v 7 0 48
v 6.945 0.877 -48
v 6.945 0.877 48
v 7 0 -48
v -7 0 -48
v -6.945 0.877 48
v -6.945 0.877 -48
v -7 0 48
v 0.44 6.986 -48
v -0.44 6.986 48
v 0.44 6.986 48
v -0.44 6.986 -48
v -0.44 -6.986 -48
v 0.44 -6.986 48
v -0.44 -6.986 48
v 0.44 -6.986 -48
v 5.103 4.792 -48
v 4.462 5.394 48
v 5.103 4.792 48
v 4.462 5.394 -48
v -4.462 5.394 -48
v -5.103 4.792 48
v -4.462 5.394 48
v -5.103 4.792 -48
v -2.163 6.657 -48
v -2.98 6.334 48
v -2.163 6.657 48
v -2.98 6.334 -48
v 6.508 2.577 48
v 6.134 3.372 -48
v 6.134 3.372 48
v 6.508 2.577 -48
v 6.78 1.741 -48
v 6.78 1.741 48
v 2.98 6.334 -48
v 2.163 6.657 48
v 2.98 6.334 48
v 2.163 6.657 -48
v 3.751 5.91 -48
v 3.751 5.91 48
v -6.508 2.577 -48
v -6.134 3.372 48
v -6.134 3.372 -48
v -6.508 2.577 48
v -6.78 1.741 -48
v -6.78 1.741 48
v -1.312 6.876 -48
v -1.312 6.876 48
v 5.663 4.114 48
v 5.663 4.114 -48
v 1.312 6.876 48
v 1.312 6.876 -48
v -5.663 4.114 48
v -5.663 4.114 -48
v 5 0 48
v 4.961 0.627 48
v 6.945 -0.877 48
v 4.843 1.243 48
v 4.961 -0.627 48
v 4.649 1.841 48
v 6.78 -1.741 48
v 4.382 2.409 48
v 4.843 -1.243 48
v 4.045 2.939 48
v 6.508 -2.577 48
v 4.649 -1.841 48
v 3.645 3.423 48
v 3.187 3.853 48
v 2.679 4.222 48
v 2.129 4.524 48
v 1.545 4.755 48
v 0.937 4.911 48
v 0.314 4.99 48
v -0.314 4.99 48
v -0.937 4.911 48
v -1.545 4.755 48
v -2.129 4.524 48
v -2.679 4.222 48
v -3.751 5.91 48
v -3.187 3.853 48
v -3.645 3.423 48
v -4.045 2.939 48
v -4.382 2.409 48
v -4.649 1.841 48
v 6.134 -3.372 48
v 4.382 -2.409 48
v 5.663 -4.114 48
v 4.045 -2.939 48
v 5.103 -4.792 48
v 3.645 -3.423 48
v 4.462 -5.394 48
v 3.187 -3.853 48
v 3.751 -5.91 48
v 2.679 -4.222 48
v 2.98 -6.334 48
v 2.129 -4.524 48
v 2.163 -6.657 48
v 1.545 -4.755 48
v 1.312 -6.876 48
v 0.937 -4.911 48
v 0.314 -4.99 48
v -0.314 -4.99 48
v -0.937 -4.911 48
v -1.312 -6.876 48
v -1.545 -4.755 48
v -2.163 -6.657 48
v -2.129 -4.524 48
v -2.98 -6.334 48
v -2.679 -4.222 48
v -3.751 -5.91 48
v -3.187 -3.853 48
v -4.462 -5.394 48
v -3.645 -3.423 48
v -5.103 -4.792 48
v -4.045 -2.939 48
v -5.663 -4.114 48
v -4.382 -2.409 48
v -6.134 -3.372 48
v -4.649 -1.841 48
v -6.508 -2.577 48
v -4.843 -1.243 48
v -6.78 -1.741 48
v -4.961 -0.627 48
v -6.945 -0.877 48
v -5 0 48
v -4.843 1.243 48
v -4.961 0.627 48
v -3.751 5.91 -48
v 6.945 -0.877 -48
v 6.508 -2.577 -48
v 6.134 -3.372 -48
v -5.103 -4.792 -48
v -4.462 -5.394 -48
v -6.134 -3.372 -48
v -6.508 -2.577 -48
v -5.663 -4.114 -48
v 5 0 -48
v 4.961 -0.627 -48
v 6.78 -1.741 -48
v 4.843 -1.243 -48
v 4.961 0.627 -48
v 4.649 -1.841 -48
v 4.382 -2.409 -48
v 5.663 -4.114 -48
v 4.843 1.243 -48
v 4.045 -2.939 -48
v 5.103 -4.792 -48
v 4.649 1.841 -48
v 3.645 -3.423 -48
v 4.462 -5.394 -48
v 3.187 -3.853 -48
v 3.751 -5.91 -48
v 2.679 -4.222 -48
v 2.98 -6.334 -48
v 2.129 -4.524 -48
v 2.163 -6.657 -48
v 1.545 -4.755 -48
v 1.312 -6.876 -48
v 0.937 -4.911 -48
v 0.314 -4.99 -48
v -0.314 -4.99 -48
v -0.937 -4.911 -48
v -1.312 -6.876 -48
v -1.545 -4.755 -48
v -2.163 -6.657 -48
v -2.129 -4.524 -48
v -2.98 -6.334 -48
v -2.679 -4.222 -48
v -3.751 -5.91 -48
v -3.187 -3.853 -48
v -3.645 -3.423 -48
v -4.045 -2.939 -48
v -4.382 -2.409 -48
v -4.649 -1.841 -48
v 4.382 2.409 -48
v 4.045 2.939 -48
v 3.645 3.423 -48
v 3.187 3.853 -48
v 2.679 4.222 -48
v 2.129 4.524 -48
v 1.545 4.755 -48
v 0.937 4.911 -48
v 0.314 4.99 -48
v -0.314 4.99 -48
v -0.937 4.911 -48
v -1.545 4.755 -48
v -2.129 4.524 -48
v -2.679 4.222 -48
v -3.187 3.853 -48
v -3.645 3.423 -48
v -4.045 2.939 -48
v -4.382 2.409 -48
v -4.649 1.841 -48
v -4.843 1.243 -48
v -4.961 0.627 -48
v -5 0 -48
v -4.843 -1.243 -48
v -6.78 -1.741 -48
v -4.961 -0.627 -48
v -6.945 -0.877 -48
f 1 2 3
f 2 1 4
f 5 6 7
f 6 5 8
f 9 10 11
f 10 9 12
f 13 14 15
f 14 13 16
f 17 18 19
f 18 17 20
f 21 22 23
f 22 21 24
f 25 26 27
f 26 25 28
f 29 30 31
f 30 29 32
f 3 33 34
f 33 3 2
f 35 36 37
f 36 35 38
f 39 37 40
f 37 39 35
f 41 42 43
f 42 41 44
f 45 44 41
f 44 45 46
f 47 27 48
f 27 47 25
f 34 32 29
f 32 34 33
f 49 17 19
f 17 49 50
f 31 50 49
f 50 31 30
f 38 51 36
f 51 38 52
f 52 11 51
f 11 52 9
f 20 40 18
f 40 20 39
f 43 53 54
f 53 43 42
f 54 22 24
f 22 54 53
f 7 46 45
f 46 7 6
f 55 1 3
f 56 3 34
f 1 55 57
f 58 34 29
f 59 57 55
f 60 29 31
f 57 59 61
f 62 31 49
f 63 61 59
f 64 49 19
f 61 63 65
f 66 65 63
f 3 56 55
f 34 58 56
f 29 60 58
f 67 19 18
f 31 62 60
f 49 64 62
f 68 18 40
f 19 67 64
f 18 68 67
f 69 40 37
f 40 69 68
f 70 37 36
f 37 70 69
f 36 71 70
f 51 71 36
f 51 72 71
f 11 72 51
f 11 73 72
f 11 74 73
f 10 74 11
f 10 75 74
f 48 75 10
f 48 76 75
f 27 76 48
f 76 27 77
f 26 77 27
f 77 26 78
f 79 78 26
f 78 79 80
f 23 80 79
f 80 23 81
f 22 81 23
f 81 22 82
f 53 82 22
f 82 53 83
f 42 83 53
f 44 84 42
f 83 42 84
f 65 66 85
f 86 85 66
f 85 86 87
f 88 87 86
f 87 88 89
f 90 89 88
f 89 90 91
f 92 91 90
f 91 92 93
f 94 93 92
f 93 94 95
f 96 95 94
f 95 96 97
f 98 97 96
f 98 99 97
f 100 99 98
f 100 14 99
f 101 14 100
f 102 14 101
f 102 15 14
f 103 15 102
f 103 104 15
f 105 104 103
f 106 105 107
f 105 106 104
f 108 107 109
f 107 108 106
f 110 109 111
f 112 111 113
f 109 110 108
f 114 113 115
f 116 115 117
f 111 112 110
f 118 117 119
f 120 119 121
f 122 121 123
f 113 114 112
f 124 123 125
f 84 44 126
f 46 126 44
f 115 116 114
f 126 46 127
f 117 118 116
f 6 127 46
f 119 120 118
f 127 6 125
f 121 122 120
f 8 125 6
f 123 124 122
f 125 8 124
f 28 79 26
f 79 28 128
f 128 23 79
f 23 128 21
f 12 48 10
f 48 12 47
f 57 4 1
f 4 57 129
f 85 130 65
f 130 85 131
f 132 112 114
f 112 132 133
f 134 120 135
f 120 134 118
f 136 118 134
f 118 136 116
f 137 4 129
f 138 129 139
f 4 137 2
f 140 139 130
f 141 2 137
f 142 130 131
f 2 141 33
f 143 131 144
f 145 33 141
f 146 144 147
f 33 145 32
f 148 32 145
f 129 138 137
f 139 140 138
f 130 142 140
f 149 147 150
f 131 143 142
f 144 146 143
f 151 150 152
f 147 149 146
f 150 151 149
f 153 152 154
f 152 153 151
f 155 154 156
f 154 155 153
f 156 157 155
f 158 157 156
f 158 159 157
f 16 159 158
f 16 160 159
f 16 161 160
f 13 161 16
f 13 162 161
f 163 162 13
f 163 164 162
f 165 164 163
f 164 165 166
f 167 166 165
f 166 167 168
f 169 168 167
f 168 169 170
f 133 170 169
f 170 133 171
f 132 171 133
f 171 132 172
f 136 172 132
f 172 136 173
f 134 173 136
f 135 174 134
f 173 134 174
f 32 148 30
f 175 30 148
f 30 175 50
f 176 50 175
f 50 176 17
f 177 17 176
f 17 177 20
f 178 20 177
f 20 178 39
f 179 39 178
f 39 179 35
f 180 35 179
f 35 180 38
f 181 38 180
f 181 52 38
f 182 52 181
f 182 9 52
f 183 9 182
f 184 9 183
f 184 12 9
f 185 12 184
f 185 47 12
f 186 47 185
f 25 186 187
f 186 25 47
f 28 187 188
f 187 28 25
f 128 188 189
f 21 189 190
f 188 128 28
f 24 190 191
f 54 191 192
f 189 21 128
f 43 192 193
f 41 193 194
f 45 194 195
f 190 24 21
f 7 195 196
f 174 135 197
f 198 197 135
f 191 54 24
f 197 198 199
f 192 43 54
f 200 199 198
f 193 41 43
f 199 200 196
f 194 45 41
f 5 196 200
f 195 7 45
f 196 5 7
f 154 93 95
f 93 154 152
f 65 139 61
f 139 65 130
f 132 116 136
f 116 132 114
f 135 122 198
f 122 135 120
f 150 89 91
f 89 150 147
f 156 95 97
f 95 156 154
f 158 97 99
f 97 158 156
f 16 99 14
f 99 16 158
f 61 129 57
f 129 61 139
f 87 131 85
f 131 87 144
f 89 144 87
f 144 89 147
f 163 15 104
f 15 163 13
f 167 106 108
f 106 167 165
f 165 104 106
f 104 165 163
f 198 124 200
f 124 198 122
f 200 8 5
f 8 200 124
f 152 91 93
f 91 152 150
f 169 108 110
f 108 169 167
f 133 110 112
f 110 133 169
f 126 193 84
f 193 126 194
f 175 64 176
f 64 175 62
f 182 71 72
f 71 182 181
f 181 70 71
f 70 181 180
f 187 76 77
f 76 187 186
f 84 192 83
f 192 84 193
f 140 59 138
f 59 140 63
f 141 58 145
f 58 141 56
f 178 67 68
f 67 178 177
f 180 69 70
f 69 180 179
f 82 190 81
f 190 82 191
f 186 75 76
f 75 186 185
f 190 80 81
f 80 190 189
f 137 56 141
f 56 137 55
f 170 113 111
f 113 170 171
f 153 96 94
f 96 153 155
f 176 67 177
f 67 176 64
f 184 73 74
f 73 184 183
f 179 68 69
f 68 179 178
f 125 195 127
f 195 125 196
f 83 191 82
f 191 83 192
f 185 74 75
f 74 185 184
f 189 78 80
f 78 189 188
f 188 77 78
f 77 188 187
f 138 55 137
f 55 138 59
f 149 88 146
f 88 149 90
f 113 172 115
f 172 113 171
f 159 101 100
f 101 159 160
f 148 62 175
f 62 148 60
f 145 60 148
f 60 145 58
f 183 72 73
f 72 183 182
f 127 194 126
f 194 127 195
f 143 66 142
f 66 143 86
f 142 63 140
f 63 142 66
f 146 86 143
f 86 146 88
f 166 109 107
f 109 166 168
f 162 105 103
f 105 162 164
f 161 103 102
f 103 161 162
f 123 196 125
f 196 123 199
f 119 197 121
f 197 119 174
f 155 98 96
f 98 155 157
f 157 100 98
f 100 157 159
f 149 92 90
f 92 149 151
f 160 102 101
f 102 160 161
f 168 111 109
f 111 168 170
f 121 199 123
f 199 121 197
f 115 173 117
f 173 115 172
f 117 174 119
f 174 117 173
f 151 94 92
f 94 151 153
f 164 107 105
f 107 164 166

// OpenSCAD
$fn = 50;


difference() {
	union() {
		translate(v = [0, 0, -48.0000000000]) {
			cylinder(h = 96, r = 7.0000000000);
		}
	}
	union() {
		translate(v = [0, 0, -100.0000000000]) {
			cylinder(h = 200, r = 5);
		}
	}
}
